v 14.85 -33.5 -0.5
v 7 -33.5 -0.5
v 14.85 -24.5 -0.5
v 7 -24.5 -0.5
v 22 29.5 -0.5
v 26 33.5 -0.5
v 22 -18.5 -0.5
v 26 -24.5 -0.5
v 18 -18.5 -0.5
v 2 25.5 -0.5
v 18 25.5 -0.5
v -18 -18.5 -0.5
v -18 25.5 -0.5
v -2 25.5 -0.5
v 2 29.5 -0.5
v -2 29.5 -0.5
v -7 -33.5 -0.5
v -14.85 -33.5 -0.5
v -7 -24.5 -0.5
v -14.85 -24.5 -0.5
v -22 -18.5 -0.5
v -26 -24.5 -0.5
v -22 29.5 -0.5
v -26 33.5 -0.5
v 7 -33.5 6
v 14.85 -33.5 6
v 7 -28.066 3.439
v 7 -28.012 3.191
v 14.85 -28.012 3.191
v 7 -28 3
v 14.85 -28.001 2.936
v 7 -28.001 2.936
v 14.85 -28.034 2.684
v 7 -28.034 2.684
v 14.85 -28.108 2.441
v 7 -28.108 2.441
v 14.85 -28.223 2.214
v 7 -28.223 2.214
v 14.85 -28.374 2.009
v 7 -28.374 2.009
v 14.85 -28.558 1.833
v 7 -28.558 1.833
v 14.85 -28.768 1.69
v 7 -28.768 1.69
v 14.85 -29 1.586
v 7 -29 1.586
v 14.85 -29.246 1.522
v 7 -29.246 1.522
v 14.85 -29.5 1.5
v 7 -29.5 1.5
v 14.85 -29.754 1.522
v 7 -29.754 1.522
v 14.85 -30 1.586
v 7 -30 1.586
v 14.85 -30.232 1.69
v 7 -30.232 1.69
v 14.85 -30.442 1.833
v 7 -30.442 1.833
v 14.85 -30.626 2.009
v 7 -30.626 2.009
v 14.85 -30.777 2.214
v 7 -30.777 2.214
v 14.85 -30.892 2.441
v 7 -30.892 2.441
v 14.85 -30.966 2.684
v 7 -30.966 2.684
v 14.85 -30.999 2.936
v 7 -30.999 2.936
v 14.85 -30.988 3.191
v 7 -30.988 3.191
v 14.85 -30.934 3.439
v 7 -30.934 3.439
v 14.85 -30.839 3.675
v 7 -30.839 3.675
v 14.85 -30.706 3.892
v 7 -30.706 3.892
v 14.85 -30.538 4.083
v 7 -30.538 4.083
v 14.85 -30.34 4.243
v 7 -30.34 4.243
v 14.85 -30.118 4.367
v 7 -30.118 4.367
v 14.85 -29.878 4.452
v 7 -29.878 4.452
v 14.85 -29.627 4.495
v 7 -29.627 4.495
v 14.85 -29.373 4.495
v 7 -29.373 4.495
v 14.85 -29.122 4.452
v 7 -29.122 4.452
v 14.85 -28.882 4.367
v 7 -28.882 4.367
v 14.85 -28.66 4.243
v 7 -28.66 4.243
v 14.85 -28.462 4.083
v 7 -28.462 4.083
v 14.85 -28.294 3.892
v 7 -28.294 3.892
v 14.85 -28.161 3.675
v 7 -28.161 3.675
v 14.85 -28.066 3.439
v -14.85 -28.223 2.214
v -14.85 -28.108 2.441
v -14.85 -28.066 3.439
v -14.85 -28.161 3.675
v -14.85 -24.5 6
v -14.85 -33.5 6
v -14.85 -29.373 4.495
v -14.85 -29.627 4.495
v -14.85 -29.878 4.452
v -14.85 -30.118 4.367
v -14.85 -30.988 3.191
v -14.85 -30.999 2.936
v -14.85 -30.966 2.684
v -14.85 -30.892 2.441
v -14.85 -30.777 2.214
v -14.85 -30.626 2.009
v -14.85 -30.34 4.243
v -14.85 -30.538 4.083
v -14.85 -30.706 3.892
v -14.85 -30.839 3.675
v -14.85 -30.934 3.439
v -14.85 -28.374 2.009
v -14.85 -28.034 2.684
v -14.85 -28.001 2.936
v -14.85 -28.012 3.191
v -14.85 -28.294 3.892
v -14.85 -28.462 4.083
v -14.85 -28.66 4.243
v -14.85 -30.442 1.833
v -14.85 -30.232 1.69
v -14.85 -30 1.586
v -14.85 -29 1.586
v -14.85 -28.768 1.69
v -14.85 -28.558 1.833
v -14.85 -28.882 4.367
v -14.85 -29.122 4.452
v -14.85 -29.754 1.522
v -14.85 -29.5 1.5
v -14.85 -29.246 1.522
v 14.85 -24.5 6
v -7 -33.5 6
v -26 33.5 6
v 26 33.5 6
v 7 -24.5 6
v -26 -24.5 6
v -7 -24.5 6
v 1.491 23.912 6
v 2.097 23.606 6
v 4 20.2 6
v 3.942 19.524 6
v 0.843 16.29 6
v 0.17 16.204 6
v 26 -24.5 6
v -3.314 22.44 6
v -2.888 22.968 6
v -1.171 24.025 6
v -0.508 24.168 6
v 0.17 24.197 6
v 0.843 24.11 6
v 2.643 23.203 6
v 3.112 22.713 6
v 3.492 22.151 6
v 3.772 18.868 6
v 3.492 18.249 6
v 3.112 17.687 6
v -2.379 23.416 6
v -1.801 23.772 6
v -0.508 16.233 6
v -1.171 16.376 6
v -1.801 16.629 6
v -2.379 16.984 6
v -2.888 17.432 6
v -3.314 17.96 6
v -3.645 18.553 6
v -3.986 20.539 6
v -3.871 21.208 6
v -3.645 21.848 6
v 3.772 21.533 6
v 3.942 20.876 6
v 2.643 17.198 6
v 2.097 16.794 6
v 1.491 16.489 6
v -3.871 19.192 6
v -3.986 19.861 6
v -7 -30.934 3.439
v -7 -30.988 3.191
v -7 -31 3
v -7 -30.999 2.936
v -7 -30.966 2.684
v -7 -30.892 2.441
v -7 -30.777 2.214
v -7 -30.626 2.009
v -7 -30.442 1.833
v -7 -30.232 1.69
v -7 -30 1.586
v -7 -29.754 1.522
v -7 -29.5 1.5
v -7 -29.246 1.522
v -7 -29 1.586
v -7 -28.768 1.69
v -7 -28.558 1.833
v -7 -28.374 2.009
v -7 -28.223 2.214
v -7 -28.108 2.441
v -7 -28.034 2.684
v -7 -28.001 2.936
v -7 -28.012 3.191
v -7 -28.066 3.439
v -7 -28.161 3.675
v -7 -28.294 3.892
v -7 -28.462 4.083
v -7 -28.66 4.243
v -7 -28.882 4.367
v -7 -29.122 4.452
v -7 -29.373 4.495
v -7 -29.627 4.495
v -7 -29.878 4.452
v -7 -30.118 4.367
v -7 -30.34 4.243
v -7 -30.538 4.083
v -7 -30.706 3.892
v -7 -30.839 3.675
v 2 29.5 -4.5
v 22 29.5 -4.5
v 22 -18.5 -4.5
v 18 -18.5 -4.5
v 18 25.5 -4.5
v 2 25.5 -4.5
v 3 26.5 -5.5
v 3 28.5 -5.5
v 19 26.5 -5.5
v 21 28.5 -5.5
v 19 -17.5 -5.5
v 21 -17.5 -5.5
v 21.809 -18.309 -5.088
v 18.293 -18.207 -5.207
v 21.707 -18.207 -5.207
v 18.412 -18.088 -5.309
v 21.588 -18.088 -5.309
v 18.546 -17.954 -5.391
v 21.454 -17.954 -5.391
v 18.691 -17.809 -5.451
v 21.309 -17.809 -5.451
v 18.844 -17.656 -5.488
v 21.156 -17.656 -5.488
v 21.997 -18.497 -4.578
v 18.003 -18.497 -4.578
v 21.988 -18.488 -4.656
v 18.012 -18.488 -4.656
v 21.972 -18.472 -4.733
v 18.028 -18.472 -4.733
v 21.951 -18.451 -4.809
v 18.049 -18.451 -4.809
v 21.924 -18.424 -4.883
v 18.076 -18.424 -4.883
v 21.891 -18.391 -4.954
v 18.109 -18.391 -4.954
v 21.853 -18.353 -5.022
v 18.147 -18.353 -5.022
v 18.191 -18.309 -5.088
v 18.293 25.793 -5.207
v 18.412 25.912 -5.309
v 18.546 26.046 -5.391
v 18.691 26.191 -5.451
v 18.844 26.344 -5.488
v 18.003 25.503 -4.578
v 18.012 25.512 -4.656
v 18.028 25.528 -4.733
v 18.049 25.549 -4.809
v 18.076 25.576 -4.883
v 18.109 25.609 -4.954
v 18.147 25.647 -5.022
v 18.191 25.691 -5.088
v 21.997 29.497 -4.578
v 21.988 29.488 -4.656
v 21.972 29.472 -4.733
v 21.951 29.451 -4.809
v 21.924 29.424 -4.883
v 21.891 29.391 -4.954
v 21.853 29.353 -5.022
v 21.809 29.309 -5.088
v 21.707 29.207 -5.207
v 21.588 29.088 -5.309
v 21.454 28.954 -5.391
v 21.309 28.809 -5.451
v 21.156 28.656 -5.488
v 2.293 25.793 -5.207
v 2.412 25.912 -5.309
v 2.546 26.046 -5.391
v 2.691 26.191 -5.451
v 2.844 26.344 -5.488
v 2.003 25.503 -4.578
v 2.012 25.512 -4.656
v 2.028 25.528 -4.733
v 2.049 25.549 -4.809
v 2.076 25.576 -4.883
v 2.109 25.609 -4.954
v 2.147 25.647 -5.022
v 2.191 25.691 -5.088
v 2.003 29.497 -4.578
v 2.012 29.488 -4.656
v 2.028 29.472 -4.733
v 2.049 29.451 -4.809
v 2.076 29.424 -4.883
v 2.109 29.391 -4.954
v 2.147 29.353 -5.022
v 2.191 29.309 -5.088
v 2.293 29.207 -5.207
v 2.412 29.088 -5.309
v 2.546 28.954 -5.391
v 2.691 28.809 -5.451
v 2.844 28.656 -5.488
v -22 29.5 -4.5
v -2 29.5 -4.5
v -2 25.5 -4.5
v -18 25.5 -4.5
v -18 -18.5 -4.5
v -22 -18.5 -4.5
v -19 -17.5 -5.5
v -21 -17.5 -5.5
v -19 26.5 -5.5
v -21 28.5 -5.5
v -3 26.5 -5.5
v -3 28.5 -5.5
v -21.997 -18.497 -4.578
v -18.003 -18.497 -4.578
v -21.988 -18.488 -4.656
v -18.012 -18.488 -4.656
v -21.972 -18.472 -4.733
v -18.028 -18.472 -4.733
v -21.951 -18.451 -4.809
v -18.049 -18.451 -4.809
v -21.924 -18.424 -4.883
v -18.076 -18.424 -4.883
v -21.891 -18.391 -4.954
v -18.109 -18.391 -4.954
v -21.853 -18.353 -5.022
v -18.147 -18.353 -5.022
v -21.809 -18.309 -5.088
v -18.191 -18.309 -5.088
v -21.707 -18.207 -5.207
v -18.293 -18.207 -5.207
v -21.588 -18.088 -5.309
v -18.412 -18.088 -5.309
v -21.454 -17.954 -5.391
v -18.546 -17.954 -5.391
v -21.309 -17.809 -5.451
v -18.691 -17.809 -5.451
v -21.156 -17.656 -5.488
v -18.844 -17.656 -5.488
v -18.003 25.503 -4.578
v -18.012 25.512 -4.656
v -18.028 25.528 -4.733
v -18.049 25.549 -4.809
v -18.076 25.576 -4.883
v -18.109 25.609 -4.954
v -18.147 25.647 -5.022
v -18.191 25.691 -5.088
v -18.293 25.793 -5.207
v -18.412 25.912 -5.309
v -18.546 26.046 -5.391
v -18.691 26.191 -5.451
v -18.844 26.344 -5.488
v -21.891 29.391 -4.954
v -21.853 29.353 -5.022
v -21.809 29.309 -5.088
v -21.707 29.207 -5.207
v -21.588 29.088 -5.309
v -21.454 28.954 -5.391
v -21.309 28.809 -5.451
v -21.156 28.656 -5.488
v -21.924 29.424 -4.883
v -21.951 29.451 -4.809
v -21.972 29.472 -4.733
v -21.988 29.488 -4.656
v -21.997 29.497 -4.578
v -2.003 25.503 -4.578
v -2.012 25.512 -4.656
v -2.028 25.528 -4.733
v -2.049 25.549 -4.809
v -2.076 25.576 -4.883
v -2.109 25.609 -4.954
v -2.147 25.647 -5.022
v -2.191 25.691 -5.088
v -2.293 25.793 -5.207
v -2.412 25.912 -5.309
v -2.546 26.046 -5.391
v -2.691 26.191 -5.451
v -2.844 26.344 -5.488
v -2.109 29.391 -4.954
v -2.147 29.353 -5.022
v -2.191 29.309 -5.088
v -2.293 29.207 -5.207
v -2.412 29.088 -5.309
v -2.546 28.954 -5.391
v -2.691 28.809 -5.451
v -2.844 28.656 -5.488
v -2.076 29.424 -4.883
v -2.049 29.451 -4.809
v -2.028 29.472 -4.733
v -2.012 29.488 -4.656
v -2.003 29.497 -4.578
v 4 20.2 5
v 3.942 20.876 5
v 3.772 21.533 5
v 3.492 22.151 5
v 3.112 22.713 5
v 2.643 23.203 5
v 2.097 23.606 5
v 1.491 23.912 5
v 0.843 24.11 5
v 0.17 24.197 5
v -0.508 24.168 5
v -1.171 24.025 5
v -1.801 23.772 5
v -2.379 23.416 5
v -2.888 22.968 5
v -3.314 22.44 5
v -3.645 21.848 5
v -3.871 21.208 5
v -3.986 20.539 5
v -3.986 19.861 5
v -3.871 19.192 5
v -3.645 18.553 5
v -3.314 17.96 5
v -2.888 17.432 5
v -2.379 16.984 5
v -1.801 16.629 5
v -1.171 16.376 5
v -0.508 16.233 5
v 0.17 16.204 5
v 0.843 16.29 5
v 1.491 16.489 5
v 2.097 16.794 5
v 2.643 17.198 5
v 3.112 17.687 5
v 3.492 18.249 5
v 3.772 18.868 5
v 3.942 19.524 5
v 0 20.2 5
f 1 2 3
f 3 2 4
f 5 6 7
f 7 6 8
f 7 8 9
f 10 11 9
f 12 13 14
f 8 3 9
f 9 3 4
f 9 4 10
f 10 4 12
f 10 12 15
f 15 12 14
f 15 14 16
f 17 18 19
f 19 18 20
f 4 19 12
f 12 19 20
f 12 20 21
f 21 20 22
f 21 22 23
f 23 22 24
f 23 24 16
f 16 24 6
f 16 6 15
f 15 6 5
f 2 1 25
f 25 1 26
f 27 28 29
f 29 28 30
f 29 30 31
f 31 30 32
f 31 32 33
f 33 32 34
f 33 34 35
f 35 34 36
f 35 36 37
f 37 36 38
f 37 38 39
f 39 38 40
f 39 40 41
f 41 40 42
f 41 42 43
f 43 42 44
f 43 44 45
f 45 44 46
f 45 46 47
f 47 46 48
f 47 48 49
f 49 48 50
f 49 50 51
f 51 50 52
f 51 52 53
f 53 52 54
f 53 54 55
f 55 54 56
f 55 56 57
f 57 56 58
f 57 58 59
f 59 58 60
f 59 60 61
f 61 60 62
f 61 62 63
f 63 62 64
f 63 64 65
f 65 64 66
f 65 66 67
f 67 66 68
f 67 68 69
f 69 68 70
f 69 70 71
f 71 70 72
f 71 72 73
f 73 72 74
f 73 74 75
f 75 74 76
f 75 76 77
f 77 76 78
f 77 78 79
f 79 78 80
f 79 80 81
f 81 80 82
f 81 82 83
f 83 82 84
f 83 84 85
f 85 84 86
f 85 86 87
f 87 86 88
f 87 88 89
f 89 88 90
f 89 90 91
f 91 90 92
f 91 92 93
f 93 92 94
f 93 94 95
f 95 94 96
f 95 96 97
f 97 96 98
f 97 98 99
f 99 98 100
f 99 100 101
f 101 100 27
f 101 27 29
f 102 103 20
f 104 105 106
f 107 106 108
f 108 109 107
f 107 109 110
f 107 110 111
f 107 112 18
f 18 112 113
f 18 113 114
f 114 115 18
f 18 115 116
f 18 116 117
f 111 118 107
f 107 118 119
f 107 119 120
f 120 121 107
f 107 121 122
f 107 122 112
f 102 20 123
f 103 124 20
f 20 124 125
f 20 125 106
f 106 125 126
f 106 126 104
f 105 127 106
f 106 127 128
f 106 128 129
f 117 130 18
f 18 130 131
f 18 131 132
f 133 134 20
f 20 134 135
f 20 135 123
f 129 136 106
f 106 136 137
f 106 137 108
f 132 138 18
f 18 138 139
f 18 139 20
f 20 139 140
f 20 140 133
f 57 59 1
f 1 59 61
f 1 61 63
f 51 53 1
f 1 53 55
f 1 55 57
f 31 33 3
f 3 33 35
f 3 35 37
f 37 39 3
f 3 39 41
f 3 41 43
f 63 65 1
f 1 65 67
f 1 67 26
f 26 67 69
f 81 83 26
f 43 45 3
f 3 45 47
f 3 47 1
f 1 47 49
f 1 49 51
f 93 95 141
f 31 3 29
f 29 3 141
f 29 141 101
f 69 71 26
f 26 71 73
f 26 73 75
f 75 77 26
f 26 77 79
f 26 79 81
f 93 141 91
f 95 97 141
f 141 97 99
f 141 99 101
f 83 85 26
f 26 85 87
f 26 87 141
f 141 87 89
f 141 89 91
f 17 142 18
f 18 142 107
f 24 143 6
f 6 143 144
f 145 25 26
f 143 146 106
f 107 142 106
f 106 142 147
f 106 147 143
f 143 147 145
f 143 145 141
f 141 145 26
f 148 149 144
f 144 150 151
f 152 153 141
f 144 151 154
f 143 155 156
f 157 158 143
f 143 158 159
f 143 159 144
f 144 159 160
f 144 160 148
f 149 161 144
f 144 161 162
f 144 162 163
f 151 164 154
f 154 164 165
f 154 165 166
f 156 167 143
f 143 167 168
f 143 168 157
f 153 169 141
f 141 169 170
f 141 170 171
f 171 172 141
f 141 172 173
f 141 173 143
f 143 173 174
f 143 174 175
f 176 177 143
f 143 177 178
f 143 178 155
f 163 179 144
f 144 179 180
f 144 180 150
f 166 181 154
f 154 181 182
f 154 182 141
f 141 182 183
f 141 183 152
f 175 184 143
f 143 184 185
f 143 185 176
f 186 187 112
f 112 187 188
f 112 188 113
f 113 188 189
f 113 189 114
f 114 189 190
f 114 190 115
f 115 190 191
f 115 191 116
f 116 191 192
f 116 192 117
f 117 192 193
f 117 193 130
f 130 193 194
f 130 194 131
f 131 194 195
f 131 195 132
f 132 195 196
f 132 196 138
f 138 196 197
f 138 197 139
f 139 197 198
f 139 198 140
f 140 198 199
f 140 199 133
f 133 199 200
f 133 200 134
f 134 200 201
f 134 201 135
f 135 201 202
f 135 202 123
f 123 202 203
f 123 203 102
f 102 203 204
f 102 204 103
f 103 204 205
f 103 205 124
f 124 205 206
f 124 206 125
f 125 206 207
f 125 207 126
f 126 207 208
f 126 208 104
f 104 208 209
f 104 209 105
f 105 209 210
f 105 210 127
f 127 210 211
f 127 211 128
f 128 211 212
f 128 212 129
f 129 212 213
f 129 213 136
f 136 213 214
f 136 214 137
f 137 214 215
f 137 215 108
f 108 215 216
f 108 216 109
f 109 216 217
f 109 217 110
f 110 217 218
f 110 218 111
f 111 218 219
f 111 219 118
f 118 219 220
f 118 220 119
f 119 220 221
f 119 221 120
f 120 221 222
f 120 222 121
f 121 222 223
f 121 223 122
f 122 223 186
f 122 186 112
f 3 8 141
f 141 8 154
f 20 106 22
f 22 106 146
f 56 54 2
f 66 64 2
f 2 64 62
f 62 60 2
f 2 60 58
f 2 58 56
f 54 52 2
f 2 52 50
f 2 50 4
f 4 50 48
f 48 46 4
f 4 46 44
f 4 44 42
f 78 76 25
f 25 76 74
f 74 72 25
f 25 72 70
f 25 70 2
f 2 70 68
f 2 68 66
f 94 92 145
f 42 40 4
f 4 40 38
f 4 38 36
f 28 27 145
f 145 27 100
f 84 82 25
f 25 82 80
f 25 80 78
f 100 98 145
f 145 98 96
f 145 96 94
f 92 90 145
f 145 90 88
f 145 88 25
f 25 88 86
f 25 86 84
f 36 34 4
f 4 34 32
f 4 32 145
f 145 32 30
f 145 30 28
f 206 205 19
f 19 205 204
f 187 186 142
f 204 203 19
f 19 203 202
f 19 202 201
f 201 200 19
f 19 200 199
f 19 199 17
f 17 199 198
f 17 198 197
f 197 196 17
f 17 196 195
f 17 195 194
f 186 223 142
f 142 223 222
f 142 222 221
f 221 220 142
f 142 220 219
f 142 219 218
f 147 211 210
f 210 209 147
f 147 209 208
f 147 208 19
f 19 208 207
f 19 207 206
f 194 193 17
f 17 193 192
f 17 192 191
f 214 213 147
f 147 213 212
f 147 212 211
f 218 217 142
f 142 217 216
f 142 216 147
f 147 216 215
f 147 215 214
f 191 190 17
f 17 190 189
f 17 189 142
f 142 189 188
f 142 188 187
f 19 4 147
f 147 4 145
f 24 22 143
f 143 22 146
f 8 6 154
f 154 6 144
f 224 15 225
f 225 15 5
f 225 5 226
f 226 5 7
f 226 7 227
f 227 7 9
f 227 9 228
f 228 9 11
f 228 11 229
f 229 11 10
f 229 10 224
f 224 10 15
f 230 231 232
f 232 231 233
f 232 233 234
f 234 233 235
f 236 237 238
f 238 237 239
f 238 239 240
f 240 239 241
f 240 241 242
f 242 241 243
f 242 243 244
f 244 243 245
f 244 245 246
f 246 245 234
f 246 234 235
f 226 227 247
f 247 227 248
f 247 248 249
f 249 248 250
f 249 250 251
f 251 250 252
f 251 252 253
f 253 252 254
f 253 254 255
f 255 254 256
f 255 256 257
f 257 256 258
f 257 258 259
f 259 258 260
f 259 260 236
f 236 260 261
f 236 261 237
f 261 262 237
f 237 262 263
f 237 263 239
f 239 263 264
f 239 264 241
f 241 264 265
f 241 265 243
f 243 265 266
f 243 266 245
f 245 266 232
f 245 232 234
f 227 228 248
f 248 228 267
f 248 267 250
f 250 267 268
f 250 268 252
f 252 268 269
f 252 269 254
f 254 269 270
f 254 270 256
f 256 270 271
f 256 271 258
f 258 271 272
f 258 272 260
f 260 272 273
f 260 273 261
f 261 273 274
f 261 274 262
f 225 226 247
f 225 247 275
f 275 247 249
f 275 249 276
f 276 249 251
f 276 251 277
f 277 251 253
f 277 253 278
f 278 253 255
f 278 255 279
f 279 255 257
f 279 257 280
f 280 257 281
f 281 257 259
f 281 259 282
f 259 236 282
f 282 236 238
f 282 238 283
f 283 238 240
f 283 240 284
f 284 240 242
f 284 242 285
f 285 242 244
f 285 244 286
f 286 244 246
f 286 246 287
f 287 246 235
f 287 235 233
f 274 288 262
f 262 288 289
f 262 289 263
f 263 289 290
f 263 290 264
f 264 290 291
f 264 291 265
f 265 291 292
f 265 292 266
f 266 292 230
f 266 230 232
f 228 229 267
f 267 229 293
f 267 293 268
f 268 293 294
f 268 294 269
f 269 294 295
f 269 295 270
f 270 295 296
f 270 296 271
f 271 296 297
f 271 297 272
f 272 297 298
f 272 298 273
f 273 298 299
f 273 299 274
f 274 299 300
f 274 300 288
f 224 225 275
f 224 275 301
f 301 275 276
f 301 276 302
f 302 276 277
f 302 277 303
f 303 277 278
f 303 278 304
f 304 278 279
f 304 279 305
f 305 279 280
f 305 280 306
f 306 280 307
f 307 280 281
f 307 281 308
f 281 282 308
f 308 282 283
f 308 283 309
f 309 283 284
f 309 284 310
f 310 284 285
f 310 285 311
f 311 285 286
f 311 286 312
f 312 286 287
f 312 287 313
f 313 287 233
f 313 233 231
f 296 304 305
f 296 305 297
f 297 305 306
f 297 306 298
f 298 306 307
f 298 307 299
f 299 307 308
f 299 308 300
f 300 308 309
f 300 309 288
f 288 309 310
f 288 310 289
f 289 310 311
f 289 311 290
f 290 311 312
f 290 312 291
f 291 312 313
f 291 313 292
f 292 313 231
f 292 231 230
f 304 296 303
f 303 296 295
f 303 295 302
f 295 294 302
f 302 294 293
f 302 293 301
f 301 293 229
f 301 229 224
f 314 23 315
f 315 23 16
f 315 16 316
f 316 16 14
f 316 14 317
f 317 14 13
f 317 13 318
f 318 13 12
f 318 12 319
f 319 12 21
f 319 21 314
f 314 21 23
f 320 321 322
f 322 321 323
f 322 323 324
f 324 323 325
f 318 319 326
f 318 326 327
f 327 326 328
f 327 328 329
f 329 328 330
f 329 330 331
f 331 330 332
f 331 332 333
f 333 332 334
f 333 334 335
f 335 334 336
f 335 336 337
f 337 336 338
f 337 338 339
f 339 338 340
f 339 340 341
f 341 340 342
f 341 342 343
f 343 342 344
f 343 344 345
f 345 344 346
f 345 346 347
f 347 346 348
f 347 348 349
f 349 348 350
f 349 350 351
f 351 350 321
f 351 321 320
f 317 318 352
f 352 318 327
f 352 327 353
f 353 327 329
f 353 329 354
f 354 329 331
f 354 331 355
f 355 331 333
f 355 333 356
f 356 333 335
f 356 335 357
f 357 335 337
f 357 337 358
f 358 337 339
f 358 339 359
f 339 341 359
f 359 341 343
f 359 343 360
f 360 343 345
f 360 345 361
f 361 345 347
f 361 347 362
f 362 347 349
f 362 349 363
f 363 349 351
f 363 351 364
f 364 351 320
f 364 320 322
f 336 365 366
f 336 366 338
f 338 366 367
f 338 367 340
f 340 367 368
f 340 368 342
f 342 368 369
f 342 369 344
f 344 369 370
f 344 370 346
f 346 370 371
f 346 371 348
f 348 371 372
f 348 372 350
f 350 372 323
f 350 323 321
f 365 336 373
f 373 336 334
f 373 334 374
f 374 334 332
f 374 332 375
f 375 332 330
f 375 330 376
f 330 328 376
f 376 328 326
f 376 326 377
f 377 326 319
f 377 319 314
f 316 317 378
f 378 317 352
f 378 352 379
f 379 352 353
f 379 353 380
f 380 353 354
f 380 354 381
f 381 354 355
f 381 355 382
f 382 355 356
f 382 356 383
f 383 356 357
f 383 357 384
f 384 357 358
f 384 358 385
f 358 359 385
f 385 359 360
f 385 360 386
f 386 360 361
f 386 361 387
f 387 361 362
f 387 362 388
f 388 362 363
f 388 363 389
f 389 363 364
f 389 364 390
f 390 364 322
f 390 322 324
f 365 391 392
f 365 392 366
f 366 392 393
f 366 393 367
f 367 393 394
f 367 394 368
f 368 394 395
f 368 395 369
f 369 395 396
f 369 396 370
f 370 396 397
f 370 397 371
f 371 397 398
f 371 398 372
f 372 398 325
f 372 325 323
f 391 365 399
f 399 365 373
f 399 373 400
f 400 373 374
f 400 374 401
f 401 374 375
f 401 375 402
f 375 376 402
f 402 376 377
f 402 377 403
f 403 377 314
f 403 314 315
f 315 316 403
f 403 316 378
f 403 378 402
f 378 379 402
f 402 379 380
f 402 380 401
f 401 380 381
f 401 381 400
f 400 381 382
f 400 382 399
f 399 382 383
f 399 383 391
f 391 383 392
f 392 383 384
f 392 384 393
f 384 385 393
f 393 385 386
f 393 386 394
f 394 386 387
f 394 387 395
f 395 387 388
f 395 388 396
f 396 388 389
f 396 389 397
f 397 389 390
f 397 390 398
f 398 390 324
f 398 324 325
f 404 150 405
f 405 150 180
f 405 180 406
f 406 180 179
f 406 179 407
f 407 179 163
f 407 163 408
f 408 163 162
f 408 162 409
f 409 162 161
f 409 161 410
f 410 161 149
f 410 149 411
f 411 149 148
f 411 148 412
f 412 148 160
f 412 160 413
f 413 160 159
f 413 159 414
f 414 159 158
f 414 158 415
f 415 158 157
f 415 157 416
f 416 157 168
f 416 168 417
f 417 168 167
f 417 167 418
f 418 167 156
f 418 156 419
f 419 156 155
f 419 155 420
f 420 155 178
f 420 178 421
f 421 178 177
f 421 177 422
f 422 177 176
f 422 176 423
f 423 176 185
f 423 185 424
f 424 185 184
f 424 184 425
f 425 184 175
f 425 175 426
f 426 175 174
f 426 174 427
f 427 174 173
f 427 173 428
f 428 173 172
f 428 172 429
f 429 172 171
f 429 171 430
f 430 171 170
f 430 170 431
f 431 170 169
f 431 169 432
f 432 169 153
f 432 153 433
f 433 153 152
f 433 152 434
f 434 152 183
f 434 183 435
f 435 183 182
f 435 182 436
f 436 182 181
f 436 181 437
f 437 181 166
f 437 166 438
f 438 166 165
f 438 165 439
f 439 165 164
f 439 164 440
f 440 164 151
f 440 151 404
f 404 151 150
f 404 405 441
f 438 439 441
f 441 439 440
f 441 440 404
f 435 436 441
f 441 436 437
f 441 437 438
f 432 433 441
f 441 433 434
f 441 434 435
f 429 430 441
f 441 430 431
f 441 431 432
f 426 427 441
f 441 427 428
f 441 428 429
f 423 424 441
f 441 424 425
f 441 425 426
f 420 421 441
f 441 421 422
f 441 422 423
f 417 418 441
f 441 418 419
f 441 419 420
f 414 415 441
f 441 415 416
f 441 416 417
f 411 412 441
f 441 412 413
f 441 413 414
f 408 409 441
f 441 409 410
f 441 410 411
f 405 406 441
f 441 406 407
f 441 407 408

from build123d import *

# Parameters (mm, degrees)
SKETCH1_W            = 29.7
SKETCH1_H            = 67
BOSS_EXTRUDE1_DEPTH  = 6
SKETCH2_R            = 1.5
CUT_EXTRUDE1_DEPTH   = 87
SKETCH3_W            = 42
SKETCH3_H            = 6
BOSS_EXTRUDE2_DEPTH  = 58
SKETCH4_W            = 14
SKETCH4_H            = 9
CUT_EXTRUDE2_DEPTH   = 58
SKETCH8_W            = 5
SKETCH8_H            = 58
BOSS_EXTRUDE5_DEPTH  = 6
BOSS_EXTRUDE3_DEPTH  = 0.5
BOSS_EXTRUDE4_DEPTH  = 5
FILLET1_R            = 1
FILLET1_OF_MIRROR1_R = 1
SKETCH7_R            = 4
CUT_EXTRUDE3_DEPTH   = 1


with BuildPart() as part:
    # Sketch1 → Boss-Extrude1 (new body)
    with BuildSketch(Plane.XY):
        Rectangle(SKETCH1_W, SKETCH1_H)
    extrude(amount=BOSS_EXTRUDE1_DEPTH)

    # Sketch2 → Cut-Extrude1 (cut)
    with BuildSketch(Plane(origin=(14.85, 0, 0), x_dir=(0, 0, -1), z_dir=(1, 0, 0))):
        with Locations((-3, -29.5)):
            Circle(SKETCH2_R)
    extrude(amount=-CUT_EXTRUDE1_DEPTH, mode=Mode.SUBTRACT)

    # Sketch3 → Boss-Extrude2 (add)
    with BuildSketch(Plane(origin=(0, 33.5, 0), x_dir=(1, 0, 0), z_dir=(0, 1, 0))):
        with Locations((0, -3)):
            Rectangle(SKETCH3_W, SKETCH3_H)
    extrude(amount=-BOSS_EXTRUDE2_DEPTH)

    # Sketch4 → Cut-Extrude2 (cut)
    with BuildSketch(Plane(origin=(0, 0, 0), x_dir=(-1, 0, 0), z_dir=(0, 0, -1))):
        with Locations((0, -29)):
            Rectangle(SKETCH4_W, SKETCH4_H)
    extrude(amount=-CUT_EXTRUDE2_DEPTH, mode=Mode.SUBTRACT)

    # Sketch8 → Boss-Extrude5 (add)
    with BuildSketch(Plane.XY.offset(6)):
        with Locations((-23.5, 4.5)):
            Rectangle(SKETCH8_W, SKETCH8_H)
        with Locations((23.5, 4.5)):
            Rectangle(SKETCH8_W, SKETCH8_H)
    extrude(amount=-BOSS_EXTRUDE5_DEPTH)

    # Sketch5 → Boss-Extrude3 (add)
    with BuildSketch(Plane(origin=(0, 0, 0), x_dir=(-1, 0, 0), z_dir=(0, 0, -1))):
        Polygon((26, -24.5), (26, 33.5), (-26, 33.5), (-26, -24.5), (-14.85, -24.5), (-14.85, -33.5), (-7, -33.5), (-7, -24.5), (7, -24.5), (7, -33.5), (14.85, -33.5), (14.85, -24.5), align=None)
    extrude(amount=BOSS_EXTRUDE3_DEPTH)

    # Sketch6 → Boss-Extrude4 (add)
    with BuildSketch(Plane(origin=(0, 0, -0.5), x_dir=(-1, 0, 0), z_dir=(0, 0, -1))):
        Polygon((-22, 29.5), (-22, -18.5), (-18, -18.5), (-18, 25.5), (-2, 25.5), (-2, 29.5), align=None)
    boss_extrude4 = extrude(amount=BOSS_EXTRUDE4_DEPTH)

    # Fillet1
    fillet1_edges = [part.edges().sort_by_distance(p)[0] for p in [
        (12, 29.5, -5.5),
        (22, 5.5, -5.5),
        (20, -18.5, -5.5),
        (18, 3.5, -5.5),
        (10, 25.5, -5.5),
        (2, 27.5, -5.5),
    ]]
    fillet(fillet1_edges, radius=FILLET1_R)

    # Mirror1: Boss-Extrude4 across plane
    add(boss_extrude4.mirror(Plane(origin=(0, 0, 0), x_dir=(0, 0, 1), z_dir=(1, 0, 0))))

    # Fillet1 of Mirror1
    fillet1_of_mirror1_edges = [part.edges().sort_by_distance(p)[0] for p in [
        (-12, 29.5, -5.5),
        (-22, 5.5, -5.5),
        (-20, -18.5, -5.5),
        (-18, 3.5, -5.5),
        (-10, 25.5, -5.5),
        (-2, 27.5, -5.5),
    ]]
    fillet(fillet1_of_mirror1_edges, radius=FILLET1_OF_MIRROR1_R)

    # Sketch7 → Cut-Extrude3 (cut)
    with BuildSketch(Plane.XY.offset(6)):
        with Locations((0, 20.200252003)):
            Circle(SKETCH7_R)
    extrude(amount=-CUT_EXTRUDE3_DEPTH, mode=Mode.SUBTRACT)


solid = part.part
